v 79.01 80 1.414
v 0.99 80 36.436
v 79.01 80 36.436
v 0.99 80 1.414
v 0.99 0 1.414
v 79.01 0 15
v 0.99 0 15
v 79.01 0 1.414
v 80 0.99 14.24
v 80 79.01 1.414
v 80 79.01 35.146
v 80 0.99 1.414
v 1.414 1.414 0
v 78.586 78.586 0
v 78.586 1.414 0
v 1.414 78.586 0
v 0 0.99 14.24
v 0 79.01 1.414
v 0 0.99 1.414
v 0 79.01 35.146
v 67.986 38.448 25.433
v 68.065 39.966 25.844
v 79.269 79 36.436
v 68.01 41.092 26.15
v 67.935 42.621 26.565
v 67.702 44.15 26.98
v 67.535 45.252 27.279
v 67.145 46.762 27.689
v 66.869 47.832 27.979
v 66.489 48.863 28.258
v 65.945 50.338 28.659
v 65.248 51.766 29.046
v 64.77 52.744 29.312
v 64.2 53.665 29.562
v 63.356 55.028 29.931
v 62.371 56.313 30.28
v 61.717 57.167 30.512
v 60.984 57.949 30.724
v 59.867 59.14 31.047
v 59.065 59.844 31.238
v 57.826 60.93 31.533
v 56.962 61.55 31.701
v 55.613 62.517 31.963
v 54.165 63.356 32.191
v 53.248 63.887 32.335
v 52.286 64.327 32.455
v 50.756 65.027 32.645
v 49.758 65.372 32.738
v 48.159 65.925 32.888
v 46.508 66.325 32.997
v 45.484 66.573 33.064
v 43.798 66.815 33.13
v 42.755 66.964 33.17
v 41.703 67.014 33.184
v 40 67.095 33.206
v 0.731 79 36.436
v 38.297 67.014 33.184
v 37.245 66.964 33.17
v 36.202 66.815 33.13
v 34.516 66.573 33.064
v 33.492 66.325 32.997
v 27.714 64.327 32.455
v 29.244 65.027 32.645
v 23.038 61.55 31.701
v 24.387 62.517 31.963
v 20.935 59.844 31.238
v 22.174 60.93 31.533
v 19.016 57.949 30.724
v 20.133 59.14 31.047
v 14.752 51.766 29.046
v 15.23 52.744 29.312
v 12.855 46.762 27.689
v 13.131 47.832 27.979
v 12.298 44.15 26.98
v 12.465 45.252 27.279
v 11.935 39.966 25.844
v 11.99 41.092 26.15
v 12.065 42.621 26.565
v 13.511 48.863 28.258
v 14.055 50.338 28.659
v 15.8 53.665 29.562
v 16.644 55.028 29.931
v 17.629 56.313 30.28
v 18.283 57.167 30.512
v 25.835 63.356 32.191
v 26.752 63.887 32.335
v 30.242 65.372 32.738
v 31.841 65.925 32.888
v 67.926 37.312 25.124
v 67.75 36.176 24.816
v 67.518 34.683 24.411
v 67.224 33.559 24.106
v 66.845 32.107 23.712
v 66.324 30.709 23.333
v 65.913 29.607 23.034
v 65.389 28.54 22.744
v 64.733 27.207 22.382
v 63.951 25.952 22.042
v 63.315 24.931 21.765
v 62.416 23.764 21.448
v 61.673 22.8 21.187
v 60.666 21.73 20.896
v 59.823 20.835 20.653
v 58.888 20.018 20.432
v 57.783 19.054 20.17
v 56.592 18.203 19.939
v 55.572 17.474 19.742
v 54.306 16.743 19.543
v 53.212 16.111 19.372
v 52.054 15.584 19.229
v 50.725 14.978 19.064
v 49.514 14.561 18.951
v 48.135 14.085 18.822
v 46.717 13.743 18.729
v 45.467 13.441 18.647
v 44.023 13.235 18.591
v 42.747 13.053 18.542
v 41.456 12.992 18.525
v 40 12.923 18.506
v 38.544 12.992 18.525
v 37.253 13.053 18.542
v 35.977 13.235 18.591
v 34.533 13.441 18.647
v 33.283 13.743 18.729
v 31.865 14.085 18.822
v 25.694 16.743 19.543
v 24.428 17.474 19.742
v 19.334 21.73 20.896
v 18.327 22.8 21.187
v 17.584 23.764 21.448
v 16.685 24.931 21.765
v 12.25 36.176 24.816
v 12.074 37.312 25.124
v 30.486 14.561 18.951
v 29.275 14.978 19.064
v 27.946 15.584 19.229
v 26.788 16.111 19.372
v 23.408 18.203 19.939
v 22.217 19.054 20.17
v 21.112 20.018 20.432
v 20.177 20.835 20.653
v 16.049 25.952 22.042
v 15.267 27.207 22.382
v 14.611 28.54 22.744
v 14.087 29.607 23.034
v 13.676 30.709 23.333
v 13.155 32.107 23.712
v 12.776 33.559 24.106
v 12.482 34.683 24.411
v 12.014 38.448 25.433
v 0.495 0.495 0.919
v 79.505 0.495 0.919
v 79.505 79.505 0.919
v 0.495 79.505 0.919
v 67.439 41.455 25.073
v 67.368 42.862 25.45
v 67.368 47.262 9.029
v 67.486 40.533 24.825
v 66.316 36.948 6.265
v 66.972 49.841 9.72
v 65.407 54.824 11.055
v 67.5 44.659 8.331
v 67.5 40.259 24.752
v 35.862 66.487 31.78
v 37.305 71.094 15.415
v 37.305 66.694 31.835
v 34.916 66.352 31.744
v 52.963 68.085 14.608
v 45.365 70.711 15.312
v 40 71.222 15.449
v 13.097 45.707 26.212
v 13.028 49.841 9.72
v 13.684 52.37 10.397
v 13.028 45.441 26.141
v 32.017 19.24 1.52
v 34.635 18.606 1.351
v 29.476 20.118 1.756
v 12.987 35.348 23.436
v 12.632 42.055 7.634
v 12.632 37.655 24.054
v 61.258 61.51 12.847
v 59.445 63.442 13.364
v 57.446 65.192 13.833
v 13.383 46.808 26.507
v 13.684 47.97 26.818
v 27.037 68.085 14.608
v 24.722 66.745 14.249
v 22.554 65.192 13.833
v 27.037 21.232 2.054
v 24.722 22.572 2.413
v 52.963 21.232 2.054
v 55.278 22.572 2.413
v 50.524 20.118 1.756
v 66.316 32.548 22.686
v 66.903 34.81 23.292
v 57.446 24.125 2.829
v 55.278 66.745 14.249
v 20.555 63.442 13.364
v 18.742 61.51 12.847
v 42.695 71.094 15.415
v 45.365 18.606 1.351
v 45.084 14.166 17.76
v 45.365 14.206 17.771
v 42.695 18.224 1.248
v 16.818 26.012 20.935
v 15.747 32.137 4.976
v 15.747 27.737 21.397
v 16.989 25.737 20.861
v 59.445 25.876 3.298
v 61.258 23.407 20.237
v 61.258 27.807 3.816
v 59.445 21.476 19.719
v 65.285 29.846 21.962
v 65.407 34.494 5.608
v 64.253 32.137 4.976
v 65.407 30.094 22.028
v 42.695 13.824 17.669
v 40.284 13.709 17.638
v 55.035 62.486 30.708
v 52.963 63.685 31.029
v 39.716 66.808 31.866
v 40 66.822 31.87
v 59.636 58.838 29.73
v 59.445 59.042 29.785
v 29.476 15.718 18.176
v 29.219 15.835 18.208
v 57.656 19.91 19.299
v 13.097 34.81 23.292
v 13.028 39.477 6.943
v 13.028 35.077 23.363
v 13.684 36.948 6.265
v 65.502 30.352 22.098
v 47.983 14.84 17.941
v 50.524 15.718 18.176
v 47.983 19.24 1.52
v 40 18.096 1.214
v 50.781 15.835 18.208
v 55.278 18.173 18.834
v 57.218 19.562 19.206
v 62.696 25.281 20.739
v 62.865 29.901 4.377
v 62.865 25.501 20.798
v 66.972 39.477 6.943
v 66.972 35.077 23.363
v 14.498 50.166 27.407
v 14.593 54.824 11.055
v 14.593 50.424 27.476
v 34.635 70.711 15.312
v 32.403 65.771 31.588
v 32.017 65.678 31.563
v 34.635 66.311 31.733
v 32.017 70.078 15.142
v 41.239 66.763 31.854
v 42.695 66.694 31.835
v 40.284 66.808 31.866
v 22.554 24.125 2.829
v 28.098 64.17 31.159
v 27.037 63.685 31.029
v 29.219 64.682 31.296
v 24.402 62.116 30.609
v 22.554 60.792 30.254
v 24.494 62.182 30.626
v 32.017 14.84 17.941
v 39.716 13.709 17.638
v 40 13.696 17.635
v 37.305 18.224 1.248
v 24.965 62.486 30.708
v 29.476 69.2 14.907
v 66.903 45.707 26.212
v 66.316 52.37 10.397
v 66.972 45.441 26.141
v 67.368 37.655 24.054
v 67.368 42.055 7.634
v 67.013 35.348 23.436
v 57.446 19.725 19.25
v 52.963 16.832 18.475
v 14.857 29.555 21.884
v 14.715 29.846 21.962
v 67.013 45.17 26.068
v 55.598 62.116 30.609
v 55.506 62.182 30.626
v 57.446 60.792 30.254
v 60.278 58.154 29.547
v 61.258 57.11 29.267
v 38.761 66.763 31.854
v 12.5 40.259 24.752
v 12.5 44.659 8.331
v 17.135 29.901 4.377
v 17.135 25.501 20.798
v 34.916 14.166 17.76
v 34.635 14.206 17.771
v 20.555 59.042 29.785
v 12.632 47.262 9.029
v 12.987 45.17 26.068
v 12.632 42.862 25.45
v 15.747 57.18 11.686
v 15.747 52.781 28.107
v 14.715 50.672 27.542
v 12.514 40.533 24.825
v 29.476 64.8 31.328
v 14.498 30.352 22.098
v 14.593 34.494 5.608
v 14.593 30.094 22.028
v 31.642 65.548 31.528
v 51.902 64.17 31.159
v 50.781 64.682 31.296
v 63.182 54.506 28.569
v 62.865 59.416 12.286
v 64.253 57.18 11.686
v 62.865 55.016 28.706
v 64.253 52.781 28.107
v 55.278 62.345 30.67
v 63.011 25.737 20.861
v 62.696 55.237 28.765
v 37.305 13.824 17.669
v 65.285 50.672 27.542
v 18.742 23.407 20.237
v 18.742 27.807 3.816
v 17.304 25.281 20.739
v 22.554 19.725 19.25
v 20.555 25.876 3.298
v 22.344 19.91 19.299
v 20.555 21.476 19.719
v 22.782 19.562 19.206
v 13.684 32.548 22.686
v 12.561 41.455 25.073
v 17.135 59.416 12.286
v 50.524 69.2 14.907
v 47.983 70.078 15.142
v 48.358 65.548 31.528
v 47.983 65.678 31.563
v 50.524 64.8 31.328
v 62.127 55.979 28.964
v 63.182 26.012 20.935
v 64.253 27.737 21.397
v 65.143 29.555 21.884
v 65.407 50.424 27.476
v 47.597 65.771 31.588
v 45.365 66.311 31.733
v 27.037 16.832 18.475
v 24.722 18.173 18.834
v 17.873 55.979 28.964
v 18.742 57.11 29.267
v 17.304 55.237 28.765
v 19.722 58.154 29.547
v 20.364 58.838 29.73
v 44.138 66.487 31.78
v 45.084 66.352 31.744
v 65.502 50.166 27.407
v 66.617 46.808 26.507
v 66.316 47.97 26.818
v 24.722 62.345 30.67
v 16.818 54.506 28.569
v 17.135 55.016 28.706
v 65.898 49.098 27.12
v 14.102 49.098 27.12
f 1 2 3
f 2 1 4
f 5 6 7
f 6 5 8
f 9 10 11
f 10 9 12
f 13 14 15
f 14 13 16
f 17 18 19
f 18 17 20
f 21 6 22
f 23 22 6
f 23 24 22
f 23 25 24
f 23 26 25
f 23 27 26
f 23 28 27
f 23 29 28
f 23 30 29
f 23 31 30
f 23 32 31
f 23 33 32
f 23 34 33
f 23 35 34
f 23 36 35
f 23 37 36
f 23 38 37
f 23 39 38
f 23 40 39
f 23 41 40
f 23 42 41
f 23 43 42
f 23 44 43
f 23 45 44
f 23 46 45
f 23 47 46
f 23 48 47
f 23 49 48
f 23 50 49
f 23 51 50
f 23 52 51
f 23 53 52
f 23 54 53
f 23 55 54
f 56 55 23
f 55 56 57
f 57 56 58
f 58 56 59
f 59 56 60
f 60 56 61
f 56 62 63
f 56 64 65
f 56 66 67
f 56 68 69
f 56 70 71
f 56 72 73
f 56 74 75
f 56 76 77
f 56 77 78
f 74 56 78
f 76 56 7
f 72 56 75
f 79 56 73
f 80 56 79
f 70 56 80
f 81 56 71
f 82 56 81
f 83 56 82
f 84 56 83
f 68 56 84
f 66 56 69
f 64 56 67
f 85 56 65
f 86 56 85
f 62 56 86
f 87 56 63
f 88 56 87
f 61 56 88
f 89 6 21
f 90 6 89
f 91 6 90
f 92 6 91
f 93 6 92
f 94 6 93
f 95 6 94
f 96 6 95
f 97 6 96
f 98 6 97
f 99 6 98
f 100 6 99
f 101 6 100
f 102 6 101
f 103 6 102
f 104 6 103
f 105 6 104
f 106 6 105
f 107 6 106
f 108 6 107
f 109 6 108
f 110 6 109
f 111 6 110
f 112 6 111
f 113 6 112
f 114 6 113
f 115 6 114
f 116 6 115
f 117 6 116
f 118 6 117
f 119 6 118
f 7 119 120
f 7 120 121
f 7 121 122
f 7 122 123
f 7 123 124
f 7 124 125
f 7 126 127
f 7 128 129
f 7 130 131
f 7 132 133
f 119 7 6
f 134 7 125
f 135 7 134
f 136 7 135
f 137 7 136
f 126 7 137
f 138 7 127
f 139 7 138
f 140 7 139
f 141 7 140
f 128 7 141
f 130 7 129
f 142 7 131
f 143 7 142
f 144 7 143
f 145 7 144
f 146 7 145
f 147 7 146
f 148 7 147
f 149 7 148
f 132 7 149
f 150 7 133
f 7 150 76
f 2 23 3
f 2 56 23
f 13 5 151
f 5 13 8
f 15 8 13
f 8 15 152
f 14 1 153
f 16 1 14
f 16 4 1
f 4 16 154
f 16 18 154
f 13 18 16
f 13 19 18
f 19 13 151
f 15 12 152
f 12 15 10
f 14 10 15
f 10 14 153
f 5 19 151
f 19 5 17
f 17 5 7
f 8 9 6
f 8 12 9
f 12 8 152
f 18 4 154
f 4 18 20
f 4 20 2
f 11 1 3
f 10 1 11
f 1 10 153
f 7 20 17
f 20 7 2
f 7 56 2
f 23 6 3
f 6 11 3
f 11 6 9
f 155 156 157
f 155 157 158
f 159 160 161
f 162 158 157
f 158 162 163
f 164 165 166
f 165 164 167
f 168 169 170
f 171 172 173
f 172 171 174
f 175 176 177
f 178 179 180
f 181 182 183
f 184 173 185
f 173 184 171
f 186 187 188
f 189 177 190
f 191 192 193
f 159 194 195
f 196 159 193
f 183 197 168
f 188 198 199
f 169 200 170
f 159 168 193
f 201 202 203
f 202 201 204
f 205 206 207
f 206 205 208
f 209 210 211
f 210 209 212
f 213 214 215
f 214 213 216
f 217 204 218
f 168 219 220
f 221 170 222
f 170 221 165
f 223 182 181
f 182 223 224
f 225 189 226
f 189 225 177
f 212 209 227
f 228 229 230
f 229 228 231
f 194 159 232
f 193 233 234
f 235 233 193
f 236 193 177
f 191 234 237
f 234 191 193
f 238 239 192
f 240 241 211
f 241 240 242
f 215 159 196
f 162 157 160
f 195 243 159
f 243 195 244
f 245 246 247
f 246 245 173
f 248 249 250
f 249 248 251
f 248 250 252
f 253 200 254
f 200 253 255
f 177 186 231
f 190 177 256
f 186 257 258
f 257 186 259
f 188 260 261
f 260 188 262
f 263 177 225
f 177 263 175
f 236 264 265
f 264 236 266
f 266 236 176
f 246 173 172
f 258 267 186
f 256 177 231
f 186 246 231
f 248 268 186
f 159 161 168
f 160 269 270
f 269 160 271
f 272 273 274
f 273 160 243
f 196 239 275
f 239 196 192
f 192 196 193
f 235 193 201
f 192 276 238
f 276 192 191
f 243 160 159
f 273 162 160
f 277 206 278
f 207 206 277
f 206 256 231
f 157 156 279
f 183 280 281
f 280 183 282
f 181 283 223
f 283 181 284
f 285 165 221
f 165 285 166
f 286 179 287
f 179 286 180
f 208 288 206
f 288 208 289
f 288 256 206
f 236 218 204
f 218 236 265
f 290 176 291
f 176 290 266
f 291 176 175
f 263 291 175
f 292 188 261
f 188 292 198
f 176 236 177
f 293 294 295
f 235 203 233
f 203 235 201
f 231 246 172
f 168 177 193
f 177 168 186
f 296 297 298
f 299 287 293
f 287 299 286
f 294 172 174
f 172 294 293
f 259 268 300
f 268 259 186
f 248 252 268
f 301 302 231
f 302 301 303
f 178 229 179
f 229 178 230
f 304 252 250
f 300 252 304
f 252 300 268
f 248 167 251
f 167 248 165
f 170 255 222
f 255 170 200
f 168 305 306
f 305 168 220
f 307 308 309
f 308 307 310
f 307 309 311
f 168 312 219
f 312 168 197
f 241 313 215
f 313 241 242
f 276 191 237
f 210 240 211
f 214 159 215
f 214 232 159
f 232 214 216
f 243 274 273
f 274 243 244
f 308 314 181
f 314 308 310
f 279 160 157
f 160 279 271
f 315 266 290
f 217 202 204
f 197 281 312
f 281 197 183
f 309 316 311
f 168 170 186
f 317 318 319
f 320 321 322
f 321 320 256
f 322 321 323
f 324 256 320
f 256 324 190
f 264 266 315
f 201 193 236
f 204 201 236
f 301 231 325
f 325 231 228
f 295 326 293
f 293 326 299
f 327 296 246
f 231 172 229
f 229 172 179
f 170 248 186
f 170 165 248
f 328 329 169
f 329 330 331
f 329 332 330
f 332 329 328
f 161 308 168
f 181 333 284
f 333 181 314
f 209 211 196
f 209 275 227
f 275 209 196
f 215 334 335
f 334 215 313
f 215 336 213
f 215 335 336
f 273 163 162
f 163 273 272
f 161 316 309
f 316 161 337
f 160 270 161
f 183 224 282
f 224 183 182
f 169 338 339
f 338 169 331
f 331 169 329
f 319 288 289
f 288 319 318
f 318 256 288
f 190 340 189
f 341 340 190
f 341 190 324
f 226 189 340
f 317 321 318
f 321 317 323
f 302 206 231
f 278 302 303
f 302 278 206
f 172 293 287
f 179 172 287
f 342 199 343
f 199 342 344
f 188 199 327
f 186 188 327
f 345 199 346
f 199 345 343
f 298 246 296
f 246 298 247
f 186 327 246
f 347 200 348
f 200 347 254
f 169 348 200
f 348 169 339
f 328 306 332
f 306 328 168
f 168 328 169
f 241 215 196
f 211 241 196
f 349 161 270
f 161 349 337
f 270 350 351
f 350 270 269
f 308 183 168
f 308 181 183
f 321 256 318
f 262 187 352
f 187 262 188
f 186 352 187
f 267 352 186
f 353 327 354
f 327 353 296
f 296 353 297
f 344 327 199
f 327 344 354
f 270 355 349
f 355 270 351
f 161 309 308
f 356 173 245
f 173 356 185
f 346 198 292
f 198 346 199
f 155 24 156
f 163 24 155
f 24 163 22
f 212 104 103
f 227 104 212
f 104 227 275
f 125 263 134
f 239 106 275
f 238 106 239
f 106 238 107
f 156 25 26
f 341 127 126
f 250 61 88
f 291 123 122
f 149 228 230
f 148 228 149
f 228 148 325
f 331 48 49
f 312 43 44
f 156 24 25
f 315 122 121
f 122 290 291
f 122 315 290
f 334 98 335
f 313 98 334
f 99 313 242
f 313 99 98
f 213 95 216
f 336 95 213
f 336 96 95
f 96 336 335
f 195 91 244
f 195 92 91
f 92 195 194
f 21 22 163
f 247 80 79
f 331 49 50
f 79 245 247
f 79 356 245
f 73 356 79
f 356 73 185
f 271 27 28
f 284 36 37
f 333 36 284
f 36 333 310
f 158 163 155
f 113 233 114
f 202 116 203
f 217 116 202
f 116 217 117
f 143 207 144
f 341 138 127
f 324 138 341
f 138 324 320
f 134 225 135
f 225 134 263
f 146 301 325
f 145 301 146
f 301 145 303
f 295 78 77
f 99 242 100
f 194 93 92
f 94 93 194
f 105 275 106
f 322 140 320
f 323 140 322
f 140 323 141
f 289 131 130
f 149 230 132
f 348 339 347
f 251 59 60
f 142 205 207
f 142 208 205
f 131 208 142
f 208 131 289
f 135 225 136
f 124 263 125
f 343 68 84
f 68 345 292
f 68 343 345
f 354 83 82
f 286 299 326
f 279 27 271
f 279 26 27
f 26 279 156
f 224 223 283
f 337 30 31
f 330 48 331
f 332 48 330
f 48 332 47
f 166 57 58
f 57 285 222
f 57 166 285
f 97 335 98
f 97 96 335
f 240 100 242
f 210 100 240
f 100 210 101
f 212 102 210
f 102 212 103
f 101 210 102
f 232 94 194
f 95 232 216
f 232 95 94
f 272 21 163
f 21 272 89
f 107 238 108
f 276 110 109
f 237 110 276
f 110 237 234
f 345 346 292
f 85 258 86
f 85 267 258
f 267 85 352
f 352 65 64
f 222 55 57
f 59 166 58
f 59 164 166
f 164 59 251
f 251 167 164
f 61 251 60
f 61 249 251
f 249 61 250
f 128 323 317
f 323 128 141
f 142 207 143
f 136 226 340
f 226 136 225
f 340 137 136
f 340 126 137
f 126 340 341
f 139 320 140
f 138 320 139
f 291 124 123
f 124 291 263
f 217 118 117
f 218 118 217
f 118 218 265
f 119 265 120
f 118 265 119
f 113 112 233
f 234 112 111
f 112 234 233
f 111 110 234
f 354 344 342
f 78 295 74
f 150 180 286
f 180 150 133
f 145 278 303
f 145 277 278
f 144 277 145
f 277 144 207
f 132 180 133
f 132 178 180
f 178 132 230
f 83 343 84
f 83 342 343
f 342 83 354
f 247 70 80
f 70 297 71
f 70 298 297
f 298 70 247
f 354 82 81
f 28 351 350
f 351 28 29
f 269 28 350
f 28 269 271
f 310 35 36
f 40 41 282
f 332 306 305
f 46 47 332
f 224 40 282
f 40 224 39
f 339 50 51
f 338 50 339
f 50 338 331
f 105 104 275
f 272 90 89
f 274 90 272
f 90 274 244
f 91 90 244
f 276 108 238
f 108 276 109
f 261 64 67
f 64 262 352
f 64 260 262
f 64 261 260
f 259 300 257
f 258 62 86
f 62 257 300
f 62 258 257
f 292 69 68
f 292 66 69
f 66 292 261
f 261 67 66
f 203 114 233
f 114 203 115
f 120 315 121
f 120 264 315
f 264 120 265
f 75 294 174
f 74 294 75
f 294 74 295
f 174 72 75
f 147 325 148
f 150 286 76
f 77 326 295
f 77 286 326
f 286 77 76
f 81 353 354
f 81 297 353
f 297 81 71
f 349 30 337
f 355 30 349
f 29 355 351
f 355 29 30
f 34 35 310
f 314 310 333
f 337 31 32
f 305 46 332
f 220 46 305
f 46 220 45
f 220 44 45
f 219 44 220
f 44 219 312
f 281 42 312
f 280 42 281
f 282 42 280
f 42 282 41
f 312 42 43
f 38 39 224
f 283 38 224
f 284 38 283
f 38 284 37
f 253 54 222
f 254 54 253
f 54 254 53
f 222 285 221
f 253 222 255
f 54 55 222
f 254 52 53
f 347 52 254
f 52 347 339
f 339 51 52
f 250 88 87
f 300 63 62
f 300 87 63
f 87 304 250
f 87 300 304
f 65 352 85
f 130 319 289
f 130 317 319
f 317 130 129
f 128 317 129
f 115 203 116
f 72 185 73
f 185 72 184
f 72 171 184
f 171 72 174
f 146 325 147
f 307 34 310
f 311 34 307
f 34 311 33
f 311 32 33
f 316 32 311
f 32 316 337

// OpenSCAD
// NanoPod Oak Stand
// Parametric design for CrowPanel 1.28" ESP32 Display
// Material: Oak wood

/* [Main Dimensions] */
width = 80;           // mm - total width
depth = 80;           // mm - total depth
front_height = 15;    // mm - height at front edge
angle = 15;           // degrees - viewing angle

/* [Device Pocket] */
pocket_diameter = 55; // mm - diameter for device
pocket_depth = 18;    // mm - depth of pocket
cable_hole = 6;       // mm - through-hole for cable

/* [Finishing] */
bevel_size = 1;       // mm - edge chamfer size

/* [Calculated] */
back_height = front_height + depth * tan(angle);

// Main wedge body
module wedge_body() {
    hull() {
        // Front edge - thin rectangle
        translate([0, 0, 0])
            cube([width, 1, front_height]);

        // Back edge - tall rectangle
        translate([0, depth - 1, 0])
            cube([width, 1, back_height]);
    }
}

// Chamfered wedge body (1mm edgy bevels on all long edges)
module beveled_wedge() {
    c = bevel_size;

    difference() {
        wedge_body();

        // === BOTTOM EDGES ===
        // Bottom front edge
        translate([0, 0, 0])
        rotate([45, 0, 0])
        translate([-1, -c, -c])
        cube([width + 2, c * 2, c * 2]);

        // Bottom back edge
        translate([0, depth, 0])
        rotate([45, 0, 0])
        translate([-1, -c, -c])
        cube([width + 2, c * 2, c * 2]);

        // Bottom left edge
        translate([0, 0, 0])
        rotate([0, -45, 0])
        translate([-c, -1, -c])
        cube([c * 2, depth + 2, c * 2]);

        // Bottom right edge
        translate([width, 0, 0])
        rotate([0, -45, 0])
        translate([-c, -1, -c])
        cube([c * 2, depth + 2, c * 2]);

        // === VERTICAL CORNER EDGES ===
        // Front left vertical
        translate([0, 0, 0])
        rotate([0, 0, 45])
        translate([-c * 0.7, -c * 0.7, -1])
        cube([c * 1.4, c * 1.4, front_height + 2]);

        // Front right vertical
        translate([width, 0, 0])
        rotate([0, 0, 45])
        translate([-c * 0.7, -c * 0.7, -1])
        cube([c * 1.4, c * 1.4, front_height + 2]);

        // Back left vertical
        translate([0, depth, 0])
        rotate([0, 0, 45])
        translate([-c * 0.7, -c * 0.7, -1])
        cube([c * 1.4, c * 1.4, back_height + 2]);

        // Back right vertical
        translate([width, depth, 0])
        rotate([0, 0, 45])
        translate([-c * 0.7, -c * 0.7, -1])
        cube([c * 1.4, c * 1.4, back_height + 2]);

        // === TOP EDGES (along angled surface) ===
        // Top left edge (along slope)
        translate([0, 0, front_height])
        rotate([angle, 0, 0])
        rotate([0, -45, 0])
        translate([-c * 0.7, -1, -c * 0.7])
        cube([c * 1.4, depth / cos(angle) + 2, c * 1.4]);

        // Top right edge (along slope)
        translate([width, 0, front_height])
        rotate([angle, 0, 0])
        rotate([0, -45, 0])
        translate([-c * 0.7, -1, -c * 0.7])
        cube([c * 1.4, depth / cos(angle) + 2, c * 1.4]);
    }
}

// Device pocket (cylinder cut into angled face)
module device_pocket() {
    // Center of top angled surface
    center_x = width / 2;
    center_y = depth / 2;
    surface_z = front_height + center_y * tan(angle);

    // 55mm dia, 18mm deep, perpendicular to 15° top surface
    translate([center_x, center_y, surface_z])
    rotate([angle, 0, 0])  // Tilt 15° to match surface angle
    translate([0, 0, -pocket_depth])
    cylinder(h = pocket_depth + 1, d = pocket_diameter, $fn = 64);
}

// Cable through-hole (from center of pocket straight to back)
module cable_hole() {
    center_x = width / 2;
    center_y = depth / 2;
    center_z = front_height + center_y * tan(angle);

    // Drill from center of pocket straight to back of case
    translate([center_x, center_y, center_z])
    rotate([-90, 0, 0])
    cylinder(h = depth, d = cable_hole, $fn = 32);
}

// Final stand assembly
module stand() {
    // Surface height at center
    surface_z = front_height + (depth/2) * tan(angle);

    difference() {
        beveled_wedge();  // Slightly rounded edges
        // 55mm pocket, 18mm deep, perpendicular to 15° surface
        translate([width/2, depth/2, surface_z])
        rotate([angle, 0, 0])  // Perpendicular to angled top surface
        translate([0, 0, -pocket_depth])
        cylinder(h = pocket_depth + 1, d = pocket_diameter, $fn = 64);

        // Bevel on top edge of pocket (1mm chamfer)
        translate([width/2, depth/2, surface_z])
        rotate([angle, 0, 0])
        translate([0, 0, -bevel_size])
        cylinder(h = bevel_size + 1, d1 = pocket_diameter, d2 = pocket_diameter + bevel_size * 2, $fn = 64);
    }
}

// Render the stand
stand();

// Optional: Show device position (uncomment to visualize)
// %translate([width/2, depth/2, front_height + (depth/2) * tan(angle)])
//   rotate([-angle, 0, 0])
//   cylinder(h = 20, d = 52, $fn = 64);

echo("=== NanoPod Stand Specifications ===");
echo(str("Width: ", width, " mm"));
echo(str("Depth: ", depth, " mm"));
echo(str("Front height: ", front_height, " mm"));
echo(str("Back height: ", back_height, " mm"));
echo(str("Angle: ", angle, " degrees"));
echo(str("Pocket: ", pocket_diameter, " mm dia x ", pocket_depth, " mm deep"));
echo(str("Cable hole: ", cable_hole, " mm"));
